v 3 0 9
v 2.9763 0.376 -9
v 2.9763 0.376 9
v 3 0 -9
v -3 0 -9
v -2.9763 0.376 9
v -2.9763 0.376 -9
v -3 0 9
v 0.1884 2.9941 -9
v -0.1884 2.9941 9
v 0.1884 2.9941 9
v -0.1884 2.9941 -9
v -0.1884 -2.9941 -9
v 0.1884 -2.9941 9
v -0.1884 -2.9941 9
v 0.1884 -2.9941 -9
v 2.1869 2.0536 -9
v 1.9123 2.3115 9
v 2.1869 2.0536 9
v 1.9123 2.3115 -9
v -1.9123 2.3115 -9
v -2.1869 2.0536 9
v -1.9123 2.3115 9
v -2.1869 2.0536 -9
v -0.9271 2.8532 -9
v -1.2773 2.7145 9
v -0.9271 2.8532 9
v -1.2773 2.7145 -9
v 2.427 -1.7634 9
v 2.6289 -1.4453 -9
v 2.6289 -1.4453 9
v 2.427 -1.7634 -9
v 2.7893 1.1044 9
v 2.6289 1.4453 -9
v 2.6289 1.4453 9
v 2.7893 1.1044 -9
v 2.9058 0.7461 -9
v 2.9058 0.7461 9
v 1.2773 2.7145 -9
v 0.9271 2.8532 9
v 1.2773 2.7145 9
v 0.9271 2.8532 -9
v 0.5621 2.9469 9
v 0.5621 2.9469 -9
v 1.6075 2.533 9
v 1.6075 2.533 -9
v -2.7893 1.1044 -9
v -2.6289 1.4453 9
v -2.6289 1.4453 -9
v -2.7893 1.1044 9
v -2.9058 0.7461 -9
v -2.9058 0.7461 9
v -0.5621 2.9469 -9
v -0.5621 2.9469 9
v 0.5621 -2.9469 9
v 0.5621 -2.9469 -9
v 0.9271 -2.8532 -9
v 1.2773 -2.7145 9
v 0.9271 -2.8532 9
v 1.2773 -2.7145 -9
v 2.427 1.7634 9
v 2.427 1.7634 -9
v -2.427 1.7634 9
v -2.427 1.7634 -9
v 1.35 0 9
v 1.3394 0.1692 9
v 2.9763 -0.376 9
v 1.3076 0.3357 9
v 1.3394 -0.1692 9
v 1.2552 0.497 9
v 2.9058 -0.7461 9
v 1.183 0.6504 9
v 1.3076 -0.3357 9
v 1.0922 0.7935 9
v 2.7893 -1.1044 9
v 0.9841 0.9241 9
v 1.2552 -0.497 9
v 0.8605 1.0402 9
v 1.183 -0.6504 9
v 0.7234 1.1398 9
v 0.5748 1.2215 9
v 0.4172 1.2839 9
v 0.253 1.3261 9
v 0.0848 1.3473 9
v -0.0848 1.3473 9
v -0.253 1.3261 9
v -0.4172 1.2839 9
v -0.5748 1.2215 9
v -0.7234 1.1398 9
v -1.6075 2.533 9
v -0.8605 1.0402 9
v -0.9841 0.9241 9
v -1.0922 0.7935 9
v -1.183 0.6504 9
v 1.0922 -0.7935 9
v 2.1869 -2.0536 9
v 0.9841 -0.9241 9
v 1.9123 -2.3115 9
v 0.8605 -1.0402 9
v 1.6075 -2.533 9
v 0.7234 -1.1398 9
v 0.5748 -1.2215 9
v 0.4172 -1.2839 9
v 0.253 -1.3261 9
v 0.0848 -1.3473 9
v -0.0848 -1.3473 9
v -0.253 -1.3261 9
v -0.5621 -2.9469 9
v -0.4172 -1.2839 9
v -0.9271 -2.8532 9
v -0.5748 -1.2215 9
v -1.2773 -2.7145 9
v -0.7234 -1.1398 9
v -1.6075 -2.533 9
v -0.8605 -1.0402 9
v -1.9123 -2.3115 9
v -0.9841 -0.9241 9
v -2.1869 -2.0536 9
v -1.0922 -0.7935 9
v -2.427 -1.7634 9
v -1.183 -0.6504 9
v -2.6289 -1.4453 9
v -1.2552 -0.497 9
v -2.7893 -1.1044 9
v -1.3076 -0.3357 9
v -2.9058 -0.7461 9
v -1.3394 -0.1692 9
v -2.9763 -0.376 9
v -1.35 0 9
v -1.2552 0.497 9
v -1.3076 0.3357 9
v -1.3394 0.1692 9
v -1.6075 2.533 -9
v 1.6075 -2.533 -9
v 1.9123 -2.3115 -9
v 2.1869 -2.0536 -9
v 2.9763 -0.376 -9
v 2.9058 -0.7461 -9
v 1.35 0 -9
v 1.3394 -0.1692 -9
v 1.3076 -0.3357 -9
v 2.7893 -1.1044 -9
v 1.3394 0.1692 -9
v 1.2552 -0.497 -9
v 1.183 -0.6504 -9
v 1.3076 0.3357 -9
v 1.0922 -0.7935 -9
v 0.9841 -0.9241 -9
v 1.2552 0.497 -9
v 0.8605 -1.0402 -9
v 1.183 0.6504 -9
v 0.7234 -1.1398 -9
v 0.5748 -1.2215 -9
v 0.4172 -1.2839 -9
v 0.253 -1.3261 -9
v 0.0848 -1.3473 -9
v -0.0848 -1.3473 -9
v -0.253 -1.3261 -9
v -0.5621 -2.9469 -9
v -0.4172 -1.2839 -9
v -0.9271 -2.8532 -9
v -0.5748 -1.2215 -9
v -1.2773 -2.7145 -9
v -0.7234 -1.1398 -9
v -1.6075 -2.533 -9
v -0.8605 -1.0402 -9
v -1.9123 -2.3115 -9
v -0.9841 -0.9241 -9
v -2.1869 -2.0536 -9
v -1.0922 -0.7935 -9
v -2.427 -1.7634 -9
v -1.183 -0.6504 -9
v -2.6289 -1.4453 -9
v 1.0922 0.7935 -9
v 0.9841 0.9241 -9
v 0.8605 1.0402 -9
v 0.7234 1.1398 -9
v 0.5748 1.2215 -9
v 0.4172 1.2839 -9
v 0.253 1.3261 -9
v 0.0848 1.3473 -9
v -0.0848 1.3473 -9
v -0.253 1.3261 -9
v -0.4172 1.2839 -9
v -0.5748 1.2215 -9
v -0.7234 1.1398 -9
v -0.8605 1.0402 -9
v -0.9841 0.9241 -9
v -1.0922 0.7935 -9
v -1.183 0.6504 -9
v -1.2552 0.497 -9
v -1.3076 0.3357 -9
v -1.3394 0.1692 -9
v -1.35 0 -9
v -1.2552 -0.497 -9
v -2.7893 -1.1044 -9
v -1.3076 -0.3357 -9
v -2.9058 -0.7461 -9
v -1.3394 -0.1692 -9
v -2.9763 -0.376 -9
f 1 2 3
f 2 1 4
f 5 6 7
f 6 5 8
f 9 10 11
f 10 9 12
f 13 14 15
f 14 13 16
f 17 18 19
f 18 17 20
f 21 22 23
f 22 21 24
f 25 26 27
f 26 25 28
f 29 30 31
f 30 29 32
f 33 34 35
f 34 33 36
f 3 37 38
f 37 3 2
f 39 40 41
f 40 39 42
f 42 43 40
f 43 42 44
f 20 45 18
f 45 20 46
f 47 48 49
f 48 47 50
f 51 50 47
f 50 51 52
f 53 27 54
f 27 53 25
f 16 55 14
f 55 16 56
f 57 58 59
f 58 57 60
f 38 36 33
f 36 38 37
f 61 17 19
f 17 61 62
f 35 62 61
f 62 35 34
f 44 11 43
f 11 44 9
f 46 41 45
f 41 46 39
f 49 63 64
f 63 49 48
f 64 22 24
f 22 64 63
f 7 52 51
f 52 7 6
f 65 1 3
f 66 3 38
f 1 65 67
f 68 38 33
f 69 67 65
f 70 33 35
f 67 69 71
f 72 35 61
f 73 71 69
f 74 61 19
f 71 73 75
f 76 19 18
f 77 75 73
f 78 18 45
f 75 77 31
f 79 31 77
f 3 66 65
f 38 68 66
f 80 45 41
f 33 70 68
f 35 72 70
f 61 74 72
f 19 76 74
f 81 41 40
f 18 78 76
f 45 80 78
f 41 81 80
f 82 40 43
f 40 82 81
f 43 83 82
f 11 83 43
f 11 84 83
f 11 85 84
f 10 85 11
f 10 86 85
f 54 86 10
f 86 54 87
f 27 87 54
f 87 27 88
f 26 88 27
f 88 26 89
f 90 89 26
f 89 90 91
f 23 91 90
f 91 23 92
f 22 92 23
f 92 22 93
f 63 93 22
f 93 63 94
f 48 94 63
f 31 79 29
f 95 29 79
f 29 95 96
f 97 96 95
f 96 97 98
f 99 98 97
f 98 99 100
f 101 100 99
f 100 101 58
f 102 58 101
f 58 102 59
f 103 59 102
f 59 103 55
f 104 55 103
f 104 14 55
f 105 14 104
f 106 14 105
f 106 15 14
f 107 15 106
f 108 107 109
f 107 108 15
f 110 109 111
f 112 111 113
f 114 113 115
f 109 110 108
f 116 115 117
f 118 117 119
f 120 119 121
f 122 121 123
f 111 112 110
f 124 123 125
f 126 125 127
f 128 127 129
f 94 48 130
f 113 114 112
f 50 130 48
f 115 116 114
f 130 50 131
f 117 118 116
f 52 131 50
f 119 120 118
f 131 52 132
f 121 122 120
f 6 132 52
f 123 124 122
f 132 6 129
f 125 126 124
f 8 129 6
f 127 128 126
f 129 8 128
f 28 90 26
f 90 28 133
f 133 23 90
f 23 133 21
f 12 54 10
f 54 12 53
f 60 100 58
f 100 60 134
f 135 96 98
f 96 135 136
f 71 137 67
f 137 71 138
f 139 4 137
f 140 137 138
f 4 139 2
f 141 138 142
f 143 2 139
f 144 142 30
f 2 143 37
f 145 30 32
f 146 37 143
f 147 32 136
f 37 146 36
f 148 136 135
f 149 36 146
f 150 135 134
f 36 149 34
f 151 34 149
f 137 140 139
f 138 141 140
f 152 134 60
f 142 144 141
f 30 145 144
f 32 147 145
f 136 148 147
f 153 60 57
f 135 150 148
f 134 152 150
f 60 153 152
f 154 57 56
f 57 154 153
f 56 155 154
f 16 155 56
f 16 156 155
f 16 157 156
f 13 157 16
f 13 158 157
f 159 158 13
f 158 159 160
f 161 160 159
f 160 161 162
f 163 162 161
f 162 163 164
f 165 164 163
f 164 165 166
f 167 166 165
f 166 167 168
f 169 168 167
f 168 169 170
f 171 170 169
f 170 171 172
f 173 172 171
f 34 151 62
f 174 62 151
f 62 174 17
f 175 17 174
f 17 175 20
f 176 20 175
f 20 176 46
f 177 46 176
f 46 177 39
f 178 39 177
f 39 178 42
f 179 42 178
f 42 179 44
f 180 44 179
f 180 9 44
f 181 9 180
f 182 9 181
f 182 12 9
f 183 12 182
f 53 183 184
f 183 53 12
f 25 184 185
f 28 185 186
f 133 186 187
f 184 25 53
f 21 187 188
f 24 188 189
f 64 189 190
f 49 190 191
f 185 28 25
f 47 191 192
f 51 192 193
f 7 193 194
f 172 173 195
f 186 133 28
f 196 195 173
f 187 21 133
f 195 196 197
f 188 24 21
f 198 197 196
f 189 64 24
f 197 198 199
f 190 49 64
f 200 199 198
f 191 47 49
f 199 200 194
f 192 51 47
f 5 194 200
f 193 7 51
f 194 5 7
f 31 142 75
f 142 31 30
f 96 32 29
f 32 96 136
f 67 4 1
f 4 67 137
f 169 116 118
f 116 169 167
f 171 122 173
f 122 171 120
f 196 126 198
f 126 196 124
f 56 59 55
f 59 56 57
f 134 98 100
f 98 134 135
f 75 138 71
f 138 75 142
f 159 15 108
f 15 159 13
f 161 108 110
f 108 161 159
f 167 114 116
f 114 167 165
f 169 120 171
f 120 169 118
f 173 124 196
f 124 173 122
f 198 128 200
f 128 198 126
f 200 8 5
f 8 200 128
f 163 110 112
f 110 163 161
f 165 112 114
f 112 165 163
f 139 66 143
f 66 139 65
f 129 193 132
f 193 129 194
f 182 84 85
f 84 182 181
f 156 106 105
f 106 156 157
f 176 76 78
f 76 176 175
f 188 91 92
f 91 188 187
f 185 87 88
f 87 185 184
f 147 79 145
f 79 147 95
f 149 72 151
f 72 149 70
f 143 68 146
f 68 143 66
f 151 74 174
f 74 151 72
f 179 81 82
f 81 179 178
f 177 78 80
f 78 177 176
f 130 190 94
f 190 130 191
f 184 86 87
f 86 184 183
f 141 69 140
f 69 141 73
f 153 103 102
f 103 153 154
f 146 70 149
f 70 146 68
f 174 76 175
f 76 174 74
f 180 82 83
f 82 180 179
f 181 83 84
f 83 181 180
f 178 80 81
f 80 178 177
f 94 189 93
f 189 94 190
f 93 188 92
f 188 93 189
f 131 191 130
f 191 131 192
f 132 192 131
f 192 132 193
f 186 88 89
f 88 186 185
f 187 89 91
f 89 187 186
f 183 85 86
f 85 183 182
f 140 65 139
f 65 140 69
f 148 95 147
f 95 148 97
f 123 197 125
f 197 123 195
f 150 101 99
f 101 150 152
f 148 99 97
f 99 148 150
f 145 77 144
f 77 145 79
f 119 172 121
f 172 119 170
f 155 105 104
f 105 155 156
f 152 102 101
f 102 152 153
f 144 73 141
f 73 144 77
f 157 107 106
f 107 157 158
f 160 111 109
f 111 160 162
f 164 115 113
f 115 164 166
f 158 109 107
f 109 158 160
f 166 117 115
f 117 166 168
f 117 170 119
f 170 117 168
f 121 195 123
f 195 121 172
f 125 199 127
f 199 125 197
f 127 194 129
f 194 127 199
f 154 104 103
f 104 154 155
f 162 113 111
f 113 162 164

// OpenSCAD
$fn = 50;


difference() {
	union() {
		translate(v = [0, 0, -9.0000000000]) {
			cylinder(h = 18, r = 3.0000000000);
		}
	}
	union() {
		translate(v = [0, 0, -100.0000000000]) {
			cylinder(h = 200, r = 1.3500000000);
		}
	}
}
